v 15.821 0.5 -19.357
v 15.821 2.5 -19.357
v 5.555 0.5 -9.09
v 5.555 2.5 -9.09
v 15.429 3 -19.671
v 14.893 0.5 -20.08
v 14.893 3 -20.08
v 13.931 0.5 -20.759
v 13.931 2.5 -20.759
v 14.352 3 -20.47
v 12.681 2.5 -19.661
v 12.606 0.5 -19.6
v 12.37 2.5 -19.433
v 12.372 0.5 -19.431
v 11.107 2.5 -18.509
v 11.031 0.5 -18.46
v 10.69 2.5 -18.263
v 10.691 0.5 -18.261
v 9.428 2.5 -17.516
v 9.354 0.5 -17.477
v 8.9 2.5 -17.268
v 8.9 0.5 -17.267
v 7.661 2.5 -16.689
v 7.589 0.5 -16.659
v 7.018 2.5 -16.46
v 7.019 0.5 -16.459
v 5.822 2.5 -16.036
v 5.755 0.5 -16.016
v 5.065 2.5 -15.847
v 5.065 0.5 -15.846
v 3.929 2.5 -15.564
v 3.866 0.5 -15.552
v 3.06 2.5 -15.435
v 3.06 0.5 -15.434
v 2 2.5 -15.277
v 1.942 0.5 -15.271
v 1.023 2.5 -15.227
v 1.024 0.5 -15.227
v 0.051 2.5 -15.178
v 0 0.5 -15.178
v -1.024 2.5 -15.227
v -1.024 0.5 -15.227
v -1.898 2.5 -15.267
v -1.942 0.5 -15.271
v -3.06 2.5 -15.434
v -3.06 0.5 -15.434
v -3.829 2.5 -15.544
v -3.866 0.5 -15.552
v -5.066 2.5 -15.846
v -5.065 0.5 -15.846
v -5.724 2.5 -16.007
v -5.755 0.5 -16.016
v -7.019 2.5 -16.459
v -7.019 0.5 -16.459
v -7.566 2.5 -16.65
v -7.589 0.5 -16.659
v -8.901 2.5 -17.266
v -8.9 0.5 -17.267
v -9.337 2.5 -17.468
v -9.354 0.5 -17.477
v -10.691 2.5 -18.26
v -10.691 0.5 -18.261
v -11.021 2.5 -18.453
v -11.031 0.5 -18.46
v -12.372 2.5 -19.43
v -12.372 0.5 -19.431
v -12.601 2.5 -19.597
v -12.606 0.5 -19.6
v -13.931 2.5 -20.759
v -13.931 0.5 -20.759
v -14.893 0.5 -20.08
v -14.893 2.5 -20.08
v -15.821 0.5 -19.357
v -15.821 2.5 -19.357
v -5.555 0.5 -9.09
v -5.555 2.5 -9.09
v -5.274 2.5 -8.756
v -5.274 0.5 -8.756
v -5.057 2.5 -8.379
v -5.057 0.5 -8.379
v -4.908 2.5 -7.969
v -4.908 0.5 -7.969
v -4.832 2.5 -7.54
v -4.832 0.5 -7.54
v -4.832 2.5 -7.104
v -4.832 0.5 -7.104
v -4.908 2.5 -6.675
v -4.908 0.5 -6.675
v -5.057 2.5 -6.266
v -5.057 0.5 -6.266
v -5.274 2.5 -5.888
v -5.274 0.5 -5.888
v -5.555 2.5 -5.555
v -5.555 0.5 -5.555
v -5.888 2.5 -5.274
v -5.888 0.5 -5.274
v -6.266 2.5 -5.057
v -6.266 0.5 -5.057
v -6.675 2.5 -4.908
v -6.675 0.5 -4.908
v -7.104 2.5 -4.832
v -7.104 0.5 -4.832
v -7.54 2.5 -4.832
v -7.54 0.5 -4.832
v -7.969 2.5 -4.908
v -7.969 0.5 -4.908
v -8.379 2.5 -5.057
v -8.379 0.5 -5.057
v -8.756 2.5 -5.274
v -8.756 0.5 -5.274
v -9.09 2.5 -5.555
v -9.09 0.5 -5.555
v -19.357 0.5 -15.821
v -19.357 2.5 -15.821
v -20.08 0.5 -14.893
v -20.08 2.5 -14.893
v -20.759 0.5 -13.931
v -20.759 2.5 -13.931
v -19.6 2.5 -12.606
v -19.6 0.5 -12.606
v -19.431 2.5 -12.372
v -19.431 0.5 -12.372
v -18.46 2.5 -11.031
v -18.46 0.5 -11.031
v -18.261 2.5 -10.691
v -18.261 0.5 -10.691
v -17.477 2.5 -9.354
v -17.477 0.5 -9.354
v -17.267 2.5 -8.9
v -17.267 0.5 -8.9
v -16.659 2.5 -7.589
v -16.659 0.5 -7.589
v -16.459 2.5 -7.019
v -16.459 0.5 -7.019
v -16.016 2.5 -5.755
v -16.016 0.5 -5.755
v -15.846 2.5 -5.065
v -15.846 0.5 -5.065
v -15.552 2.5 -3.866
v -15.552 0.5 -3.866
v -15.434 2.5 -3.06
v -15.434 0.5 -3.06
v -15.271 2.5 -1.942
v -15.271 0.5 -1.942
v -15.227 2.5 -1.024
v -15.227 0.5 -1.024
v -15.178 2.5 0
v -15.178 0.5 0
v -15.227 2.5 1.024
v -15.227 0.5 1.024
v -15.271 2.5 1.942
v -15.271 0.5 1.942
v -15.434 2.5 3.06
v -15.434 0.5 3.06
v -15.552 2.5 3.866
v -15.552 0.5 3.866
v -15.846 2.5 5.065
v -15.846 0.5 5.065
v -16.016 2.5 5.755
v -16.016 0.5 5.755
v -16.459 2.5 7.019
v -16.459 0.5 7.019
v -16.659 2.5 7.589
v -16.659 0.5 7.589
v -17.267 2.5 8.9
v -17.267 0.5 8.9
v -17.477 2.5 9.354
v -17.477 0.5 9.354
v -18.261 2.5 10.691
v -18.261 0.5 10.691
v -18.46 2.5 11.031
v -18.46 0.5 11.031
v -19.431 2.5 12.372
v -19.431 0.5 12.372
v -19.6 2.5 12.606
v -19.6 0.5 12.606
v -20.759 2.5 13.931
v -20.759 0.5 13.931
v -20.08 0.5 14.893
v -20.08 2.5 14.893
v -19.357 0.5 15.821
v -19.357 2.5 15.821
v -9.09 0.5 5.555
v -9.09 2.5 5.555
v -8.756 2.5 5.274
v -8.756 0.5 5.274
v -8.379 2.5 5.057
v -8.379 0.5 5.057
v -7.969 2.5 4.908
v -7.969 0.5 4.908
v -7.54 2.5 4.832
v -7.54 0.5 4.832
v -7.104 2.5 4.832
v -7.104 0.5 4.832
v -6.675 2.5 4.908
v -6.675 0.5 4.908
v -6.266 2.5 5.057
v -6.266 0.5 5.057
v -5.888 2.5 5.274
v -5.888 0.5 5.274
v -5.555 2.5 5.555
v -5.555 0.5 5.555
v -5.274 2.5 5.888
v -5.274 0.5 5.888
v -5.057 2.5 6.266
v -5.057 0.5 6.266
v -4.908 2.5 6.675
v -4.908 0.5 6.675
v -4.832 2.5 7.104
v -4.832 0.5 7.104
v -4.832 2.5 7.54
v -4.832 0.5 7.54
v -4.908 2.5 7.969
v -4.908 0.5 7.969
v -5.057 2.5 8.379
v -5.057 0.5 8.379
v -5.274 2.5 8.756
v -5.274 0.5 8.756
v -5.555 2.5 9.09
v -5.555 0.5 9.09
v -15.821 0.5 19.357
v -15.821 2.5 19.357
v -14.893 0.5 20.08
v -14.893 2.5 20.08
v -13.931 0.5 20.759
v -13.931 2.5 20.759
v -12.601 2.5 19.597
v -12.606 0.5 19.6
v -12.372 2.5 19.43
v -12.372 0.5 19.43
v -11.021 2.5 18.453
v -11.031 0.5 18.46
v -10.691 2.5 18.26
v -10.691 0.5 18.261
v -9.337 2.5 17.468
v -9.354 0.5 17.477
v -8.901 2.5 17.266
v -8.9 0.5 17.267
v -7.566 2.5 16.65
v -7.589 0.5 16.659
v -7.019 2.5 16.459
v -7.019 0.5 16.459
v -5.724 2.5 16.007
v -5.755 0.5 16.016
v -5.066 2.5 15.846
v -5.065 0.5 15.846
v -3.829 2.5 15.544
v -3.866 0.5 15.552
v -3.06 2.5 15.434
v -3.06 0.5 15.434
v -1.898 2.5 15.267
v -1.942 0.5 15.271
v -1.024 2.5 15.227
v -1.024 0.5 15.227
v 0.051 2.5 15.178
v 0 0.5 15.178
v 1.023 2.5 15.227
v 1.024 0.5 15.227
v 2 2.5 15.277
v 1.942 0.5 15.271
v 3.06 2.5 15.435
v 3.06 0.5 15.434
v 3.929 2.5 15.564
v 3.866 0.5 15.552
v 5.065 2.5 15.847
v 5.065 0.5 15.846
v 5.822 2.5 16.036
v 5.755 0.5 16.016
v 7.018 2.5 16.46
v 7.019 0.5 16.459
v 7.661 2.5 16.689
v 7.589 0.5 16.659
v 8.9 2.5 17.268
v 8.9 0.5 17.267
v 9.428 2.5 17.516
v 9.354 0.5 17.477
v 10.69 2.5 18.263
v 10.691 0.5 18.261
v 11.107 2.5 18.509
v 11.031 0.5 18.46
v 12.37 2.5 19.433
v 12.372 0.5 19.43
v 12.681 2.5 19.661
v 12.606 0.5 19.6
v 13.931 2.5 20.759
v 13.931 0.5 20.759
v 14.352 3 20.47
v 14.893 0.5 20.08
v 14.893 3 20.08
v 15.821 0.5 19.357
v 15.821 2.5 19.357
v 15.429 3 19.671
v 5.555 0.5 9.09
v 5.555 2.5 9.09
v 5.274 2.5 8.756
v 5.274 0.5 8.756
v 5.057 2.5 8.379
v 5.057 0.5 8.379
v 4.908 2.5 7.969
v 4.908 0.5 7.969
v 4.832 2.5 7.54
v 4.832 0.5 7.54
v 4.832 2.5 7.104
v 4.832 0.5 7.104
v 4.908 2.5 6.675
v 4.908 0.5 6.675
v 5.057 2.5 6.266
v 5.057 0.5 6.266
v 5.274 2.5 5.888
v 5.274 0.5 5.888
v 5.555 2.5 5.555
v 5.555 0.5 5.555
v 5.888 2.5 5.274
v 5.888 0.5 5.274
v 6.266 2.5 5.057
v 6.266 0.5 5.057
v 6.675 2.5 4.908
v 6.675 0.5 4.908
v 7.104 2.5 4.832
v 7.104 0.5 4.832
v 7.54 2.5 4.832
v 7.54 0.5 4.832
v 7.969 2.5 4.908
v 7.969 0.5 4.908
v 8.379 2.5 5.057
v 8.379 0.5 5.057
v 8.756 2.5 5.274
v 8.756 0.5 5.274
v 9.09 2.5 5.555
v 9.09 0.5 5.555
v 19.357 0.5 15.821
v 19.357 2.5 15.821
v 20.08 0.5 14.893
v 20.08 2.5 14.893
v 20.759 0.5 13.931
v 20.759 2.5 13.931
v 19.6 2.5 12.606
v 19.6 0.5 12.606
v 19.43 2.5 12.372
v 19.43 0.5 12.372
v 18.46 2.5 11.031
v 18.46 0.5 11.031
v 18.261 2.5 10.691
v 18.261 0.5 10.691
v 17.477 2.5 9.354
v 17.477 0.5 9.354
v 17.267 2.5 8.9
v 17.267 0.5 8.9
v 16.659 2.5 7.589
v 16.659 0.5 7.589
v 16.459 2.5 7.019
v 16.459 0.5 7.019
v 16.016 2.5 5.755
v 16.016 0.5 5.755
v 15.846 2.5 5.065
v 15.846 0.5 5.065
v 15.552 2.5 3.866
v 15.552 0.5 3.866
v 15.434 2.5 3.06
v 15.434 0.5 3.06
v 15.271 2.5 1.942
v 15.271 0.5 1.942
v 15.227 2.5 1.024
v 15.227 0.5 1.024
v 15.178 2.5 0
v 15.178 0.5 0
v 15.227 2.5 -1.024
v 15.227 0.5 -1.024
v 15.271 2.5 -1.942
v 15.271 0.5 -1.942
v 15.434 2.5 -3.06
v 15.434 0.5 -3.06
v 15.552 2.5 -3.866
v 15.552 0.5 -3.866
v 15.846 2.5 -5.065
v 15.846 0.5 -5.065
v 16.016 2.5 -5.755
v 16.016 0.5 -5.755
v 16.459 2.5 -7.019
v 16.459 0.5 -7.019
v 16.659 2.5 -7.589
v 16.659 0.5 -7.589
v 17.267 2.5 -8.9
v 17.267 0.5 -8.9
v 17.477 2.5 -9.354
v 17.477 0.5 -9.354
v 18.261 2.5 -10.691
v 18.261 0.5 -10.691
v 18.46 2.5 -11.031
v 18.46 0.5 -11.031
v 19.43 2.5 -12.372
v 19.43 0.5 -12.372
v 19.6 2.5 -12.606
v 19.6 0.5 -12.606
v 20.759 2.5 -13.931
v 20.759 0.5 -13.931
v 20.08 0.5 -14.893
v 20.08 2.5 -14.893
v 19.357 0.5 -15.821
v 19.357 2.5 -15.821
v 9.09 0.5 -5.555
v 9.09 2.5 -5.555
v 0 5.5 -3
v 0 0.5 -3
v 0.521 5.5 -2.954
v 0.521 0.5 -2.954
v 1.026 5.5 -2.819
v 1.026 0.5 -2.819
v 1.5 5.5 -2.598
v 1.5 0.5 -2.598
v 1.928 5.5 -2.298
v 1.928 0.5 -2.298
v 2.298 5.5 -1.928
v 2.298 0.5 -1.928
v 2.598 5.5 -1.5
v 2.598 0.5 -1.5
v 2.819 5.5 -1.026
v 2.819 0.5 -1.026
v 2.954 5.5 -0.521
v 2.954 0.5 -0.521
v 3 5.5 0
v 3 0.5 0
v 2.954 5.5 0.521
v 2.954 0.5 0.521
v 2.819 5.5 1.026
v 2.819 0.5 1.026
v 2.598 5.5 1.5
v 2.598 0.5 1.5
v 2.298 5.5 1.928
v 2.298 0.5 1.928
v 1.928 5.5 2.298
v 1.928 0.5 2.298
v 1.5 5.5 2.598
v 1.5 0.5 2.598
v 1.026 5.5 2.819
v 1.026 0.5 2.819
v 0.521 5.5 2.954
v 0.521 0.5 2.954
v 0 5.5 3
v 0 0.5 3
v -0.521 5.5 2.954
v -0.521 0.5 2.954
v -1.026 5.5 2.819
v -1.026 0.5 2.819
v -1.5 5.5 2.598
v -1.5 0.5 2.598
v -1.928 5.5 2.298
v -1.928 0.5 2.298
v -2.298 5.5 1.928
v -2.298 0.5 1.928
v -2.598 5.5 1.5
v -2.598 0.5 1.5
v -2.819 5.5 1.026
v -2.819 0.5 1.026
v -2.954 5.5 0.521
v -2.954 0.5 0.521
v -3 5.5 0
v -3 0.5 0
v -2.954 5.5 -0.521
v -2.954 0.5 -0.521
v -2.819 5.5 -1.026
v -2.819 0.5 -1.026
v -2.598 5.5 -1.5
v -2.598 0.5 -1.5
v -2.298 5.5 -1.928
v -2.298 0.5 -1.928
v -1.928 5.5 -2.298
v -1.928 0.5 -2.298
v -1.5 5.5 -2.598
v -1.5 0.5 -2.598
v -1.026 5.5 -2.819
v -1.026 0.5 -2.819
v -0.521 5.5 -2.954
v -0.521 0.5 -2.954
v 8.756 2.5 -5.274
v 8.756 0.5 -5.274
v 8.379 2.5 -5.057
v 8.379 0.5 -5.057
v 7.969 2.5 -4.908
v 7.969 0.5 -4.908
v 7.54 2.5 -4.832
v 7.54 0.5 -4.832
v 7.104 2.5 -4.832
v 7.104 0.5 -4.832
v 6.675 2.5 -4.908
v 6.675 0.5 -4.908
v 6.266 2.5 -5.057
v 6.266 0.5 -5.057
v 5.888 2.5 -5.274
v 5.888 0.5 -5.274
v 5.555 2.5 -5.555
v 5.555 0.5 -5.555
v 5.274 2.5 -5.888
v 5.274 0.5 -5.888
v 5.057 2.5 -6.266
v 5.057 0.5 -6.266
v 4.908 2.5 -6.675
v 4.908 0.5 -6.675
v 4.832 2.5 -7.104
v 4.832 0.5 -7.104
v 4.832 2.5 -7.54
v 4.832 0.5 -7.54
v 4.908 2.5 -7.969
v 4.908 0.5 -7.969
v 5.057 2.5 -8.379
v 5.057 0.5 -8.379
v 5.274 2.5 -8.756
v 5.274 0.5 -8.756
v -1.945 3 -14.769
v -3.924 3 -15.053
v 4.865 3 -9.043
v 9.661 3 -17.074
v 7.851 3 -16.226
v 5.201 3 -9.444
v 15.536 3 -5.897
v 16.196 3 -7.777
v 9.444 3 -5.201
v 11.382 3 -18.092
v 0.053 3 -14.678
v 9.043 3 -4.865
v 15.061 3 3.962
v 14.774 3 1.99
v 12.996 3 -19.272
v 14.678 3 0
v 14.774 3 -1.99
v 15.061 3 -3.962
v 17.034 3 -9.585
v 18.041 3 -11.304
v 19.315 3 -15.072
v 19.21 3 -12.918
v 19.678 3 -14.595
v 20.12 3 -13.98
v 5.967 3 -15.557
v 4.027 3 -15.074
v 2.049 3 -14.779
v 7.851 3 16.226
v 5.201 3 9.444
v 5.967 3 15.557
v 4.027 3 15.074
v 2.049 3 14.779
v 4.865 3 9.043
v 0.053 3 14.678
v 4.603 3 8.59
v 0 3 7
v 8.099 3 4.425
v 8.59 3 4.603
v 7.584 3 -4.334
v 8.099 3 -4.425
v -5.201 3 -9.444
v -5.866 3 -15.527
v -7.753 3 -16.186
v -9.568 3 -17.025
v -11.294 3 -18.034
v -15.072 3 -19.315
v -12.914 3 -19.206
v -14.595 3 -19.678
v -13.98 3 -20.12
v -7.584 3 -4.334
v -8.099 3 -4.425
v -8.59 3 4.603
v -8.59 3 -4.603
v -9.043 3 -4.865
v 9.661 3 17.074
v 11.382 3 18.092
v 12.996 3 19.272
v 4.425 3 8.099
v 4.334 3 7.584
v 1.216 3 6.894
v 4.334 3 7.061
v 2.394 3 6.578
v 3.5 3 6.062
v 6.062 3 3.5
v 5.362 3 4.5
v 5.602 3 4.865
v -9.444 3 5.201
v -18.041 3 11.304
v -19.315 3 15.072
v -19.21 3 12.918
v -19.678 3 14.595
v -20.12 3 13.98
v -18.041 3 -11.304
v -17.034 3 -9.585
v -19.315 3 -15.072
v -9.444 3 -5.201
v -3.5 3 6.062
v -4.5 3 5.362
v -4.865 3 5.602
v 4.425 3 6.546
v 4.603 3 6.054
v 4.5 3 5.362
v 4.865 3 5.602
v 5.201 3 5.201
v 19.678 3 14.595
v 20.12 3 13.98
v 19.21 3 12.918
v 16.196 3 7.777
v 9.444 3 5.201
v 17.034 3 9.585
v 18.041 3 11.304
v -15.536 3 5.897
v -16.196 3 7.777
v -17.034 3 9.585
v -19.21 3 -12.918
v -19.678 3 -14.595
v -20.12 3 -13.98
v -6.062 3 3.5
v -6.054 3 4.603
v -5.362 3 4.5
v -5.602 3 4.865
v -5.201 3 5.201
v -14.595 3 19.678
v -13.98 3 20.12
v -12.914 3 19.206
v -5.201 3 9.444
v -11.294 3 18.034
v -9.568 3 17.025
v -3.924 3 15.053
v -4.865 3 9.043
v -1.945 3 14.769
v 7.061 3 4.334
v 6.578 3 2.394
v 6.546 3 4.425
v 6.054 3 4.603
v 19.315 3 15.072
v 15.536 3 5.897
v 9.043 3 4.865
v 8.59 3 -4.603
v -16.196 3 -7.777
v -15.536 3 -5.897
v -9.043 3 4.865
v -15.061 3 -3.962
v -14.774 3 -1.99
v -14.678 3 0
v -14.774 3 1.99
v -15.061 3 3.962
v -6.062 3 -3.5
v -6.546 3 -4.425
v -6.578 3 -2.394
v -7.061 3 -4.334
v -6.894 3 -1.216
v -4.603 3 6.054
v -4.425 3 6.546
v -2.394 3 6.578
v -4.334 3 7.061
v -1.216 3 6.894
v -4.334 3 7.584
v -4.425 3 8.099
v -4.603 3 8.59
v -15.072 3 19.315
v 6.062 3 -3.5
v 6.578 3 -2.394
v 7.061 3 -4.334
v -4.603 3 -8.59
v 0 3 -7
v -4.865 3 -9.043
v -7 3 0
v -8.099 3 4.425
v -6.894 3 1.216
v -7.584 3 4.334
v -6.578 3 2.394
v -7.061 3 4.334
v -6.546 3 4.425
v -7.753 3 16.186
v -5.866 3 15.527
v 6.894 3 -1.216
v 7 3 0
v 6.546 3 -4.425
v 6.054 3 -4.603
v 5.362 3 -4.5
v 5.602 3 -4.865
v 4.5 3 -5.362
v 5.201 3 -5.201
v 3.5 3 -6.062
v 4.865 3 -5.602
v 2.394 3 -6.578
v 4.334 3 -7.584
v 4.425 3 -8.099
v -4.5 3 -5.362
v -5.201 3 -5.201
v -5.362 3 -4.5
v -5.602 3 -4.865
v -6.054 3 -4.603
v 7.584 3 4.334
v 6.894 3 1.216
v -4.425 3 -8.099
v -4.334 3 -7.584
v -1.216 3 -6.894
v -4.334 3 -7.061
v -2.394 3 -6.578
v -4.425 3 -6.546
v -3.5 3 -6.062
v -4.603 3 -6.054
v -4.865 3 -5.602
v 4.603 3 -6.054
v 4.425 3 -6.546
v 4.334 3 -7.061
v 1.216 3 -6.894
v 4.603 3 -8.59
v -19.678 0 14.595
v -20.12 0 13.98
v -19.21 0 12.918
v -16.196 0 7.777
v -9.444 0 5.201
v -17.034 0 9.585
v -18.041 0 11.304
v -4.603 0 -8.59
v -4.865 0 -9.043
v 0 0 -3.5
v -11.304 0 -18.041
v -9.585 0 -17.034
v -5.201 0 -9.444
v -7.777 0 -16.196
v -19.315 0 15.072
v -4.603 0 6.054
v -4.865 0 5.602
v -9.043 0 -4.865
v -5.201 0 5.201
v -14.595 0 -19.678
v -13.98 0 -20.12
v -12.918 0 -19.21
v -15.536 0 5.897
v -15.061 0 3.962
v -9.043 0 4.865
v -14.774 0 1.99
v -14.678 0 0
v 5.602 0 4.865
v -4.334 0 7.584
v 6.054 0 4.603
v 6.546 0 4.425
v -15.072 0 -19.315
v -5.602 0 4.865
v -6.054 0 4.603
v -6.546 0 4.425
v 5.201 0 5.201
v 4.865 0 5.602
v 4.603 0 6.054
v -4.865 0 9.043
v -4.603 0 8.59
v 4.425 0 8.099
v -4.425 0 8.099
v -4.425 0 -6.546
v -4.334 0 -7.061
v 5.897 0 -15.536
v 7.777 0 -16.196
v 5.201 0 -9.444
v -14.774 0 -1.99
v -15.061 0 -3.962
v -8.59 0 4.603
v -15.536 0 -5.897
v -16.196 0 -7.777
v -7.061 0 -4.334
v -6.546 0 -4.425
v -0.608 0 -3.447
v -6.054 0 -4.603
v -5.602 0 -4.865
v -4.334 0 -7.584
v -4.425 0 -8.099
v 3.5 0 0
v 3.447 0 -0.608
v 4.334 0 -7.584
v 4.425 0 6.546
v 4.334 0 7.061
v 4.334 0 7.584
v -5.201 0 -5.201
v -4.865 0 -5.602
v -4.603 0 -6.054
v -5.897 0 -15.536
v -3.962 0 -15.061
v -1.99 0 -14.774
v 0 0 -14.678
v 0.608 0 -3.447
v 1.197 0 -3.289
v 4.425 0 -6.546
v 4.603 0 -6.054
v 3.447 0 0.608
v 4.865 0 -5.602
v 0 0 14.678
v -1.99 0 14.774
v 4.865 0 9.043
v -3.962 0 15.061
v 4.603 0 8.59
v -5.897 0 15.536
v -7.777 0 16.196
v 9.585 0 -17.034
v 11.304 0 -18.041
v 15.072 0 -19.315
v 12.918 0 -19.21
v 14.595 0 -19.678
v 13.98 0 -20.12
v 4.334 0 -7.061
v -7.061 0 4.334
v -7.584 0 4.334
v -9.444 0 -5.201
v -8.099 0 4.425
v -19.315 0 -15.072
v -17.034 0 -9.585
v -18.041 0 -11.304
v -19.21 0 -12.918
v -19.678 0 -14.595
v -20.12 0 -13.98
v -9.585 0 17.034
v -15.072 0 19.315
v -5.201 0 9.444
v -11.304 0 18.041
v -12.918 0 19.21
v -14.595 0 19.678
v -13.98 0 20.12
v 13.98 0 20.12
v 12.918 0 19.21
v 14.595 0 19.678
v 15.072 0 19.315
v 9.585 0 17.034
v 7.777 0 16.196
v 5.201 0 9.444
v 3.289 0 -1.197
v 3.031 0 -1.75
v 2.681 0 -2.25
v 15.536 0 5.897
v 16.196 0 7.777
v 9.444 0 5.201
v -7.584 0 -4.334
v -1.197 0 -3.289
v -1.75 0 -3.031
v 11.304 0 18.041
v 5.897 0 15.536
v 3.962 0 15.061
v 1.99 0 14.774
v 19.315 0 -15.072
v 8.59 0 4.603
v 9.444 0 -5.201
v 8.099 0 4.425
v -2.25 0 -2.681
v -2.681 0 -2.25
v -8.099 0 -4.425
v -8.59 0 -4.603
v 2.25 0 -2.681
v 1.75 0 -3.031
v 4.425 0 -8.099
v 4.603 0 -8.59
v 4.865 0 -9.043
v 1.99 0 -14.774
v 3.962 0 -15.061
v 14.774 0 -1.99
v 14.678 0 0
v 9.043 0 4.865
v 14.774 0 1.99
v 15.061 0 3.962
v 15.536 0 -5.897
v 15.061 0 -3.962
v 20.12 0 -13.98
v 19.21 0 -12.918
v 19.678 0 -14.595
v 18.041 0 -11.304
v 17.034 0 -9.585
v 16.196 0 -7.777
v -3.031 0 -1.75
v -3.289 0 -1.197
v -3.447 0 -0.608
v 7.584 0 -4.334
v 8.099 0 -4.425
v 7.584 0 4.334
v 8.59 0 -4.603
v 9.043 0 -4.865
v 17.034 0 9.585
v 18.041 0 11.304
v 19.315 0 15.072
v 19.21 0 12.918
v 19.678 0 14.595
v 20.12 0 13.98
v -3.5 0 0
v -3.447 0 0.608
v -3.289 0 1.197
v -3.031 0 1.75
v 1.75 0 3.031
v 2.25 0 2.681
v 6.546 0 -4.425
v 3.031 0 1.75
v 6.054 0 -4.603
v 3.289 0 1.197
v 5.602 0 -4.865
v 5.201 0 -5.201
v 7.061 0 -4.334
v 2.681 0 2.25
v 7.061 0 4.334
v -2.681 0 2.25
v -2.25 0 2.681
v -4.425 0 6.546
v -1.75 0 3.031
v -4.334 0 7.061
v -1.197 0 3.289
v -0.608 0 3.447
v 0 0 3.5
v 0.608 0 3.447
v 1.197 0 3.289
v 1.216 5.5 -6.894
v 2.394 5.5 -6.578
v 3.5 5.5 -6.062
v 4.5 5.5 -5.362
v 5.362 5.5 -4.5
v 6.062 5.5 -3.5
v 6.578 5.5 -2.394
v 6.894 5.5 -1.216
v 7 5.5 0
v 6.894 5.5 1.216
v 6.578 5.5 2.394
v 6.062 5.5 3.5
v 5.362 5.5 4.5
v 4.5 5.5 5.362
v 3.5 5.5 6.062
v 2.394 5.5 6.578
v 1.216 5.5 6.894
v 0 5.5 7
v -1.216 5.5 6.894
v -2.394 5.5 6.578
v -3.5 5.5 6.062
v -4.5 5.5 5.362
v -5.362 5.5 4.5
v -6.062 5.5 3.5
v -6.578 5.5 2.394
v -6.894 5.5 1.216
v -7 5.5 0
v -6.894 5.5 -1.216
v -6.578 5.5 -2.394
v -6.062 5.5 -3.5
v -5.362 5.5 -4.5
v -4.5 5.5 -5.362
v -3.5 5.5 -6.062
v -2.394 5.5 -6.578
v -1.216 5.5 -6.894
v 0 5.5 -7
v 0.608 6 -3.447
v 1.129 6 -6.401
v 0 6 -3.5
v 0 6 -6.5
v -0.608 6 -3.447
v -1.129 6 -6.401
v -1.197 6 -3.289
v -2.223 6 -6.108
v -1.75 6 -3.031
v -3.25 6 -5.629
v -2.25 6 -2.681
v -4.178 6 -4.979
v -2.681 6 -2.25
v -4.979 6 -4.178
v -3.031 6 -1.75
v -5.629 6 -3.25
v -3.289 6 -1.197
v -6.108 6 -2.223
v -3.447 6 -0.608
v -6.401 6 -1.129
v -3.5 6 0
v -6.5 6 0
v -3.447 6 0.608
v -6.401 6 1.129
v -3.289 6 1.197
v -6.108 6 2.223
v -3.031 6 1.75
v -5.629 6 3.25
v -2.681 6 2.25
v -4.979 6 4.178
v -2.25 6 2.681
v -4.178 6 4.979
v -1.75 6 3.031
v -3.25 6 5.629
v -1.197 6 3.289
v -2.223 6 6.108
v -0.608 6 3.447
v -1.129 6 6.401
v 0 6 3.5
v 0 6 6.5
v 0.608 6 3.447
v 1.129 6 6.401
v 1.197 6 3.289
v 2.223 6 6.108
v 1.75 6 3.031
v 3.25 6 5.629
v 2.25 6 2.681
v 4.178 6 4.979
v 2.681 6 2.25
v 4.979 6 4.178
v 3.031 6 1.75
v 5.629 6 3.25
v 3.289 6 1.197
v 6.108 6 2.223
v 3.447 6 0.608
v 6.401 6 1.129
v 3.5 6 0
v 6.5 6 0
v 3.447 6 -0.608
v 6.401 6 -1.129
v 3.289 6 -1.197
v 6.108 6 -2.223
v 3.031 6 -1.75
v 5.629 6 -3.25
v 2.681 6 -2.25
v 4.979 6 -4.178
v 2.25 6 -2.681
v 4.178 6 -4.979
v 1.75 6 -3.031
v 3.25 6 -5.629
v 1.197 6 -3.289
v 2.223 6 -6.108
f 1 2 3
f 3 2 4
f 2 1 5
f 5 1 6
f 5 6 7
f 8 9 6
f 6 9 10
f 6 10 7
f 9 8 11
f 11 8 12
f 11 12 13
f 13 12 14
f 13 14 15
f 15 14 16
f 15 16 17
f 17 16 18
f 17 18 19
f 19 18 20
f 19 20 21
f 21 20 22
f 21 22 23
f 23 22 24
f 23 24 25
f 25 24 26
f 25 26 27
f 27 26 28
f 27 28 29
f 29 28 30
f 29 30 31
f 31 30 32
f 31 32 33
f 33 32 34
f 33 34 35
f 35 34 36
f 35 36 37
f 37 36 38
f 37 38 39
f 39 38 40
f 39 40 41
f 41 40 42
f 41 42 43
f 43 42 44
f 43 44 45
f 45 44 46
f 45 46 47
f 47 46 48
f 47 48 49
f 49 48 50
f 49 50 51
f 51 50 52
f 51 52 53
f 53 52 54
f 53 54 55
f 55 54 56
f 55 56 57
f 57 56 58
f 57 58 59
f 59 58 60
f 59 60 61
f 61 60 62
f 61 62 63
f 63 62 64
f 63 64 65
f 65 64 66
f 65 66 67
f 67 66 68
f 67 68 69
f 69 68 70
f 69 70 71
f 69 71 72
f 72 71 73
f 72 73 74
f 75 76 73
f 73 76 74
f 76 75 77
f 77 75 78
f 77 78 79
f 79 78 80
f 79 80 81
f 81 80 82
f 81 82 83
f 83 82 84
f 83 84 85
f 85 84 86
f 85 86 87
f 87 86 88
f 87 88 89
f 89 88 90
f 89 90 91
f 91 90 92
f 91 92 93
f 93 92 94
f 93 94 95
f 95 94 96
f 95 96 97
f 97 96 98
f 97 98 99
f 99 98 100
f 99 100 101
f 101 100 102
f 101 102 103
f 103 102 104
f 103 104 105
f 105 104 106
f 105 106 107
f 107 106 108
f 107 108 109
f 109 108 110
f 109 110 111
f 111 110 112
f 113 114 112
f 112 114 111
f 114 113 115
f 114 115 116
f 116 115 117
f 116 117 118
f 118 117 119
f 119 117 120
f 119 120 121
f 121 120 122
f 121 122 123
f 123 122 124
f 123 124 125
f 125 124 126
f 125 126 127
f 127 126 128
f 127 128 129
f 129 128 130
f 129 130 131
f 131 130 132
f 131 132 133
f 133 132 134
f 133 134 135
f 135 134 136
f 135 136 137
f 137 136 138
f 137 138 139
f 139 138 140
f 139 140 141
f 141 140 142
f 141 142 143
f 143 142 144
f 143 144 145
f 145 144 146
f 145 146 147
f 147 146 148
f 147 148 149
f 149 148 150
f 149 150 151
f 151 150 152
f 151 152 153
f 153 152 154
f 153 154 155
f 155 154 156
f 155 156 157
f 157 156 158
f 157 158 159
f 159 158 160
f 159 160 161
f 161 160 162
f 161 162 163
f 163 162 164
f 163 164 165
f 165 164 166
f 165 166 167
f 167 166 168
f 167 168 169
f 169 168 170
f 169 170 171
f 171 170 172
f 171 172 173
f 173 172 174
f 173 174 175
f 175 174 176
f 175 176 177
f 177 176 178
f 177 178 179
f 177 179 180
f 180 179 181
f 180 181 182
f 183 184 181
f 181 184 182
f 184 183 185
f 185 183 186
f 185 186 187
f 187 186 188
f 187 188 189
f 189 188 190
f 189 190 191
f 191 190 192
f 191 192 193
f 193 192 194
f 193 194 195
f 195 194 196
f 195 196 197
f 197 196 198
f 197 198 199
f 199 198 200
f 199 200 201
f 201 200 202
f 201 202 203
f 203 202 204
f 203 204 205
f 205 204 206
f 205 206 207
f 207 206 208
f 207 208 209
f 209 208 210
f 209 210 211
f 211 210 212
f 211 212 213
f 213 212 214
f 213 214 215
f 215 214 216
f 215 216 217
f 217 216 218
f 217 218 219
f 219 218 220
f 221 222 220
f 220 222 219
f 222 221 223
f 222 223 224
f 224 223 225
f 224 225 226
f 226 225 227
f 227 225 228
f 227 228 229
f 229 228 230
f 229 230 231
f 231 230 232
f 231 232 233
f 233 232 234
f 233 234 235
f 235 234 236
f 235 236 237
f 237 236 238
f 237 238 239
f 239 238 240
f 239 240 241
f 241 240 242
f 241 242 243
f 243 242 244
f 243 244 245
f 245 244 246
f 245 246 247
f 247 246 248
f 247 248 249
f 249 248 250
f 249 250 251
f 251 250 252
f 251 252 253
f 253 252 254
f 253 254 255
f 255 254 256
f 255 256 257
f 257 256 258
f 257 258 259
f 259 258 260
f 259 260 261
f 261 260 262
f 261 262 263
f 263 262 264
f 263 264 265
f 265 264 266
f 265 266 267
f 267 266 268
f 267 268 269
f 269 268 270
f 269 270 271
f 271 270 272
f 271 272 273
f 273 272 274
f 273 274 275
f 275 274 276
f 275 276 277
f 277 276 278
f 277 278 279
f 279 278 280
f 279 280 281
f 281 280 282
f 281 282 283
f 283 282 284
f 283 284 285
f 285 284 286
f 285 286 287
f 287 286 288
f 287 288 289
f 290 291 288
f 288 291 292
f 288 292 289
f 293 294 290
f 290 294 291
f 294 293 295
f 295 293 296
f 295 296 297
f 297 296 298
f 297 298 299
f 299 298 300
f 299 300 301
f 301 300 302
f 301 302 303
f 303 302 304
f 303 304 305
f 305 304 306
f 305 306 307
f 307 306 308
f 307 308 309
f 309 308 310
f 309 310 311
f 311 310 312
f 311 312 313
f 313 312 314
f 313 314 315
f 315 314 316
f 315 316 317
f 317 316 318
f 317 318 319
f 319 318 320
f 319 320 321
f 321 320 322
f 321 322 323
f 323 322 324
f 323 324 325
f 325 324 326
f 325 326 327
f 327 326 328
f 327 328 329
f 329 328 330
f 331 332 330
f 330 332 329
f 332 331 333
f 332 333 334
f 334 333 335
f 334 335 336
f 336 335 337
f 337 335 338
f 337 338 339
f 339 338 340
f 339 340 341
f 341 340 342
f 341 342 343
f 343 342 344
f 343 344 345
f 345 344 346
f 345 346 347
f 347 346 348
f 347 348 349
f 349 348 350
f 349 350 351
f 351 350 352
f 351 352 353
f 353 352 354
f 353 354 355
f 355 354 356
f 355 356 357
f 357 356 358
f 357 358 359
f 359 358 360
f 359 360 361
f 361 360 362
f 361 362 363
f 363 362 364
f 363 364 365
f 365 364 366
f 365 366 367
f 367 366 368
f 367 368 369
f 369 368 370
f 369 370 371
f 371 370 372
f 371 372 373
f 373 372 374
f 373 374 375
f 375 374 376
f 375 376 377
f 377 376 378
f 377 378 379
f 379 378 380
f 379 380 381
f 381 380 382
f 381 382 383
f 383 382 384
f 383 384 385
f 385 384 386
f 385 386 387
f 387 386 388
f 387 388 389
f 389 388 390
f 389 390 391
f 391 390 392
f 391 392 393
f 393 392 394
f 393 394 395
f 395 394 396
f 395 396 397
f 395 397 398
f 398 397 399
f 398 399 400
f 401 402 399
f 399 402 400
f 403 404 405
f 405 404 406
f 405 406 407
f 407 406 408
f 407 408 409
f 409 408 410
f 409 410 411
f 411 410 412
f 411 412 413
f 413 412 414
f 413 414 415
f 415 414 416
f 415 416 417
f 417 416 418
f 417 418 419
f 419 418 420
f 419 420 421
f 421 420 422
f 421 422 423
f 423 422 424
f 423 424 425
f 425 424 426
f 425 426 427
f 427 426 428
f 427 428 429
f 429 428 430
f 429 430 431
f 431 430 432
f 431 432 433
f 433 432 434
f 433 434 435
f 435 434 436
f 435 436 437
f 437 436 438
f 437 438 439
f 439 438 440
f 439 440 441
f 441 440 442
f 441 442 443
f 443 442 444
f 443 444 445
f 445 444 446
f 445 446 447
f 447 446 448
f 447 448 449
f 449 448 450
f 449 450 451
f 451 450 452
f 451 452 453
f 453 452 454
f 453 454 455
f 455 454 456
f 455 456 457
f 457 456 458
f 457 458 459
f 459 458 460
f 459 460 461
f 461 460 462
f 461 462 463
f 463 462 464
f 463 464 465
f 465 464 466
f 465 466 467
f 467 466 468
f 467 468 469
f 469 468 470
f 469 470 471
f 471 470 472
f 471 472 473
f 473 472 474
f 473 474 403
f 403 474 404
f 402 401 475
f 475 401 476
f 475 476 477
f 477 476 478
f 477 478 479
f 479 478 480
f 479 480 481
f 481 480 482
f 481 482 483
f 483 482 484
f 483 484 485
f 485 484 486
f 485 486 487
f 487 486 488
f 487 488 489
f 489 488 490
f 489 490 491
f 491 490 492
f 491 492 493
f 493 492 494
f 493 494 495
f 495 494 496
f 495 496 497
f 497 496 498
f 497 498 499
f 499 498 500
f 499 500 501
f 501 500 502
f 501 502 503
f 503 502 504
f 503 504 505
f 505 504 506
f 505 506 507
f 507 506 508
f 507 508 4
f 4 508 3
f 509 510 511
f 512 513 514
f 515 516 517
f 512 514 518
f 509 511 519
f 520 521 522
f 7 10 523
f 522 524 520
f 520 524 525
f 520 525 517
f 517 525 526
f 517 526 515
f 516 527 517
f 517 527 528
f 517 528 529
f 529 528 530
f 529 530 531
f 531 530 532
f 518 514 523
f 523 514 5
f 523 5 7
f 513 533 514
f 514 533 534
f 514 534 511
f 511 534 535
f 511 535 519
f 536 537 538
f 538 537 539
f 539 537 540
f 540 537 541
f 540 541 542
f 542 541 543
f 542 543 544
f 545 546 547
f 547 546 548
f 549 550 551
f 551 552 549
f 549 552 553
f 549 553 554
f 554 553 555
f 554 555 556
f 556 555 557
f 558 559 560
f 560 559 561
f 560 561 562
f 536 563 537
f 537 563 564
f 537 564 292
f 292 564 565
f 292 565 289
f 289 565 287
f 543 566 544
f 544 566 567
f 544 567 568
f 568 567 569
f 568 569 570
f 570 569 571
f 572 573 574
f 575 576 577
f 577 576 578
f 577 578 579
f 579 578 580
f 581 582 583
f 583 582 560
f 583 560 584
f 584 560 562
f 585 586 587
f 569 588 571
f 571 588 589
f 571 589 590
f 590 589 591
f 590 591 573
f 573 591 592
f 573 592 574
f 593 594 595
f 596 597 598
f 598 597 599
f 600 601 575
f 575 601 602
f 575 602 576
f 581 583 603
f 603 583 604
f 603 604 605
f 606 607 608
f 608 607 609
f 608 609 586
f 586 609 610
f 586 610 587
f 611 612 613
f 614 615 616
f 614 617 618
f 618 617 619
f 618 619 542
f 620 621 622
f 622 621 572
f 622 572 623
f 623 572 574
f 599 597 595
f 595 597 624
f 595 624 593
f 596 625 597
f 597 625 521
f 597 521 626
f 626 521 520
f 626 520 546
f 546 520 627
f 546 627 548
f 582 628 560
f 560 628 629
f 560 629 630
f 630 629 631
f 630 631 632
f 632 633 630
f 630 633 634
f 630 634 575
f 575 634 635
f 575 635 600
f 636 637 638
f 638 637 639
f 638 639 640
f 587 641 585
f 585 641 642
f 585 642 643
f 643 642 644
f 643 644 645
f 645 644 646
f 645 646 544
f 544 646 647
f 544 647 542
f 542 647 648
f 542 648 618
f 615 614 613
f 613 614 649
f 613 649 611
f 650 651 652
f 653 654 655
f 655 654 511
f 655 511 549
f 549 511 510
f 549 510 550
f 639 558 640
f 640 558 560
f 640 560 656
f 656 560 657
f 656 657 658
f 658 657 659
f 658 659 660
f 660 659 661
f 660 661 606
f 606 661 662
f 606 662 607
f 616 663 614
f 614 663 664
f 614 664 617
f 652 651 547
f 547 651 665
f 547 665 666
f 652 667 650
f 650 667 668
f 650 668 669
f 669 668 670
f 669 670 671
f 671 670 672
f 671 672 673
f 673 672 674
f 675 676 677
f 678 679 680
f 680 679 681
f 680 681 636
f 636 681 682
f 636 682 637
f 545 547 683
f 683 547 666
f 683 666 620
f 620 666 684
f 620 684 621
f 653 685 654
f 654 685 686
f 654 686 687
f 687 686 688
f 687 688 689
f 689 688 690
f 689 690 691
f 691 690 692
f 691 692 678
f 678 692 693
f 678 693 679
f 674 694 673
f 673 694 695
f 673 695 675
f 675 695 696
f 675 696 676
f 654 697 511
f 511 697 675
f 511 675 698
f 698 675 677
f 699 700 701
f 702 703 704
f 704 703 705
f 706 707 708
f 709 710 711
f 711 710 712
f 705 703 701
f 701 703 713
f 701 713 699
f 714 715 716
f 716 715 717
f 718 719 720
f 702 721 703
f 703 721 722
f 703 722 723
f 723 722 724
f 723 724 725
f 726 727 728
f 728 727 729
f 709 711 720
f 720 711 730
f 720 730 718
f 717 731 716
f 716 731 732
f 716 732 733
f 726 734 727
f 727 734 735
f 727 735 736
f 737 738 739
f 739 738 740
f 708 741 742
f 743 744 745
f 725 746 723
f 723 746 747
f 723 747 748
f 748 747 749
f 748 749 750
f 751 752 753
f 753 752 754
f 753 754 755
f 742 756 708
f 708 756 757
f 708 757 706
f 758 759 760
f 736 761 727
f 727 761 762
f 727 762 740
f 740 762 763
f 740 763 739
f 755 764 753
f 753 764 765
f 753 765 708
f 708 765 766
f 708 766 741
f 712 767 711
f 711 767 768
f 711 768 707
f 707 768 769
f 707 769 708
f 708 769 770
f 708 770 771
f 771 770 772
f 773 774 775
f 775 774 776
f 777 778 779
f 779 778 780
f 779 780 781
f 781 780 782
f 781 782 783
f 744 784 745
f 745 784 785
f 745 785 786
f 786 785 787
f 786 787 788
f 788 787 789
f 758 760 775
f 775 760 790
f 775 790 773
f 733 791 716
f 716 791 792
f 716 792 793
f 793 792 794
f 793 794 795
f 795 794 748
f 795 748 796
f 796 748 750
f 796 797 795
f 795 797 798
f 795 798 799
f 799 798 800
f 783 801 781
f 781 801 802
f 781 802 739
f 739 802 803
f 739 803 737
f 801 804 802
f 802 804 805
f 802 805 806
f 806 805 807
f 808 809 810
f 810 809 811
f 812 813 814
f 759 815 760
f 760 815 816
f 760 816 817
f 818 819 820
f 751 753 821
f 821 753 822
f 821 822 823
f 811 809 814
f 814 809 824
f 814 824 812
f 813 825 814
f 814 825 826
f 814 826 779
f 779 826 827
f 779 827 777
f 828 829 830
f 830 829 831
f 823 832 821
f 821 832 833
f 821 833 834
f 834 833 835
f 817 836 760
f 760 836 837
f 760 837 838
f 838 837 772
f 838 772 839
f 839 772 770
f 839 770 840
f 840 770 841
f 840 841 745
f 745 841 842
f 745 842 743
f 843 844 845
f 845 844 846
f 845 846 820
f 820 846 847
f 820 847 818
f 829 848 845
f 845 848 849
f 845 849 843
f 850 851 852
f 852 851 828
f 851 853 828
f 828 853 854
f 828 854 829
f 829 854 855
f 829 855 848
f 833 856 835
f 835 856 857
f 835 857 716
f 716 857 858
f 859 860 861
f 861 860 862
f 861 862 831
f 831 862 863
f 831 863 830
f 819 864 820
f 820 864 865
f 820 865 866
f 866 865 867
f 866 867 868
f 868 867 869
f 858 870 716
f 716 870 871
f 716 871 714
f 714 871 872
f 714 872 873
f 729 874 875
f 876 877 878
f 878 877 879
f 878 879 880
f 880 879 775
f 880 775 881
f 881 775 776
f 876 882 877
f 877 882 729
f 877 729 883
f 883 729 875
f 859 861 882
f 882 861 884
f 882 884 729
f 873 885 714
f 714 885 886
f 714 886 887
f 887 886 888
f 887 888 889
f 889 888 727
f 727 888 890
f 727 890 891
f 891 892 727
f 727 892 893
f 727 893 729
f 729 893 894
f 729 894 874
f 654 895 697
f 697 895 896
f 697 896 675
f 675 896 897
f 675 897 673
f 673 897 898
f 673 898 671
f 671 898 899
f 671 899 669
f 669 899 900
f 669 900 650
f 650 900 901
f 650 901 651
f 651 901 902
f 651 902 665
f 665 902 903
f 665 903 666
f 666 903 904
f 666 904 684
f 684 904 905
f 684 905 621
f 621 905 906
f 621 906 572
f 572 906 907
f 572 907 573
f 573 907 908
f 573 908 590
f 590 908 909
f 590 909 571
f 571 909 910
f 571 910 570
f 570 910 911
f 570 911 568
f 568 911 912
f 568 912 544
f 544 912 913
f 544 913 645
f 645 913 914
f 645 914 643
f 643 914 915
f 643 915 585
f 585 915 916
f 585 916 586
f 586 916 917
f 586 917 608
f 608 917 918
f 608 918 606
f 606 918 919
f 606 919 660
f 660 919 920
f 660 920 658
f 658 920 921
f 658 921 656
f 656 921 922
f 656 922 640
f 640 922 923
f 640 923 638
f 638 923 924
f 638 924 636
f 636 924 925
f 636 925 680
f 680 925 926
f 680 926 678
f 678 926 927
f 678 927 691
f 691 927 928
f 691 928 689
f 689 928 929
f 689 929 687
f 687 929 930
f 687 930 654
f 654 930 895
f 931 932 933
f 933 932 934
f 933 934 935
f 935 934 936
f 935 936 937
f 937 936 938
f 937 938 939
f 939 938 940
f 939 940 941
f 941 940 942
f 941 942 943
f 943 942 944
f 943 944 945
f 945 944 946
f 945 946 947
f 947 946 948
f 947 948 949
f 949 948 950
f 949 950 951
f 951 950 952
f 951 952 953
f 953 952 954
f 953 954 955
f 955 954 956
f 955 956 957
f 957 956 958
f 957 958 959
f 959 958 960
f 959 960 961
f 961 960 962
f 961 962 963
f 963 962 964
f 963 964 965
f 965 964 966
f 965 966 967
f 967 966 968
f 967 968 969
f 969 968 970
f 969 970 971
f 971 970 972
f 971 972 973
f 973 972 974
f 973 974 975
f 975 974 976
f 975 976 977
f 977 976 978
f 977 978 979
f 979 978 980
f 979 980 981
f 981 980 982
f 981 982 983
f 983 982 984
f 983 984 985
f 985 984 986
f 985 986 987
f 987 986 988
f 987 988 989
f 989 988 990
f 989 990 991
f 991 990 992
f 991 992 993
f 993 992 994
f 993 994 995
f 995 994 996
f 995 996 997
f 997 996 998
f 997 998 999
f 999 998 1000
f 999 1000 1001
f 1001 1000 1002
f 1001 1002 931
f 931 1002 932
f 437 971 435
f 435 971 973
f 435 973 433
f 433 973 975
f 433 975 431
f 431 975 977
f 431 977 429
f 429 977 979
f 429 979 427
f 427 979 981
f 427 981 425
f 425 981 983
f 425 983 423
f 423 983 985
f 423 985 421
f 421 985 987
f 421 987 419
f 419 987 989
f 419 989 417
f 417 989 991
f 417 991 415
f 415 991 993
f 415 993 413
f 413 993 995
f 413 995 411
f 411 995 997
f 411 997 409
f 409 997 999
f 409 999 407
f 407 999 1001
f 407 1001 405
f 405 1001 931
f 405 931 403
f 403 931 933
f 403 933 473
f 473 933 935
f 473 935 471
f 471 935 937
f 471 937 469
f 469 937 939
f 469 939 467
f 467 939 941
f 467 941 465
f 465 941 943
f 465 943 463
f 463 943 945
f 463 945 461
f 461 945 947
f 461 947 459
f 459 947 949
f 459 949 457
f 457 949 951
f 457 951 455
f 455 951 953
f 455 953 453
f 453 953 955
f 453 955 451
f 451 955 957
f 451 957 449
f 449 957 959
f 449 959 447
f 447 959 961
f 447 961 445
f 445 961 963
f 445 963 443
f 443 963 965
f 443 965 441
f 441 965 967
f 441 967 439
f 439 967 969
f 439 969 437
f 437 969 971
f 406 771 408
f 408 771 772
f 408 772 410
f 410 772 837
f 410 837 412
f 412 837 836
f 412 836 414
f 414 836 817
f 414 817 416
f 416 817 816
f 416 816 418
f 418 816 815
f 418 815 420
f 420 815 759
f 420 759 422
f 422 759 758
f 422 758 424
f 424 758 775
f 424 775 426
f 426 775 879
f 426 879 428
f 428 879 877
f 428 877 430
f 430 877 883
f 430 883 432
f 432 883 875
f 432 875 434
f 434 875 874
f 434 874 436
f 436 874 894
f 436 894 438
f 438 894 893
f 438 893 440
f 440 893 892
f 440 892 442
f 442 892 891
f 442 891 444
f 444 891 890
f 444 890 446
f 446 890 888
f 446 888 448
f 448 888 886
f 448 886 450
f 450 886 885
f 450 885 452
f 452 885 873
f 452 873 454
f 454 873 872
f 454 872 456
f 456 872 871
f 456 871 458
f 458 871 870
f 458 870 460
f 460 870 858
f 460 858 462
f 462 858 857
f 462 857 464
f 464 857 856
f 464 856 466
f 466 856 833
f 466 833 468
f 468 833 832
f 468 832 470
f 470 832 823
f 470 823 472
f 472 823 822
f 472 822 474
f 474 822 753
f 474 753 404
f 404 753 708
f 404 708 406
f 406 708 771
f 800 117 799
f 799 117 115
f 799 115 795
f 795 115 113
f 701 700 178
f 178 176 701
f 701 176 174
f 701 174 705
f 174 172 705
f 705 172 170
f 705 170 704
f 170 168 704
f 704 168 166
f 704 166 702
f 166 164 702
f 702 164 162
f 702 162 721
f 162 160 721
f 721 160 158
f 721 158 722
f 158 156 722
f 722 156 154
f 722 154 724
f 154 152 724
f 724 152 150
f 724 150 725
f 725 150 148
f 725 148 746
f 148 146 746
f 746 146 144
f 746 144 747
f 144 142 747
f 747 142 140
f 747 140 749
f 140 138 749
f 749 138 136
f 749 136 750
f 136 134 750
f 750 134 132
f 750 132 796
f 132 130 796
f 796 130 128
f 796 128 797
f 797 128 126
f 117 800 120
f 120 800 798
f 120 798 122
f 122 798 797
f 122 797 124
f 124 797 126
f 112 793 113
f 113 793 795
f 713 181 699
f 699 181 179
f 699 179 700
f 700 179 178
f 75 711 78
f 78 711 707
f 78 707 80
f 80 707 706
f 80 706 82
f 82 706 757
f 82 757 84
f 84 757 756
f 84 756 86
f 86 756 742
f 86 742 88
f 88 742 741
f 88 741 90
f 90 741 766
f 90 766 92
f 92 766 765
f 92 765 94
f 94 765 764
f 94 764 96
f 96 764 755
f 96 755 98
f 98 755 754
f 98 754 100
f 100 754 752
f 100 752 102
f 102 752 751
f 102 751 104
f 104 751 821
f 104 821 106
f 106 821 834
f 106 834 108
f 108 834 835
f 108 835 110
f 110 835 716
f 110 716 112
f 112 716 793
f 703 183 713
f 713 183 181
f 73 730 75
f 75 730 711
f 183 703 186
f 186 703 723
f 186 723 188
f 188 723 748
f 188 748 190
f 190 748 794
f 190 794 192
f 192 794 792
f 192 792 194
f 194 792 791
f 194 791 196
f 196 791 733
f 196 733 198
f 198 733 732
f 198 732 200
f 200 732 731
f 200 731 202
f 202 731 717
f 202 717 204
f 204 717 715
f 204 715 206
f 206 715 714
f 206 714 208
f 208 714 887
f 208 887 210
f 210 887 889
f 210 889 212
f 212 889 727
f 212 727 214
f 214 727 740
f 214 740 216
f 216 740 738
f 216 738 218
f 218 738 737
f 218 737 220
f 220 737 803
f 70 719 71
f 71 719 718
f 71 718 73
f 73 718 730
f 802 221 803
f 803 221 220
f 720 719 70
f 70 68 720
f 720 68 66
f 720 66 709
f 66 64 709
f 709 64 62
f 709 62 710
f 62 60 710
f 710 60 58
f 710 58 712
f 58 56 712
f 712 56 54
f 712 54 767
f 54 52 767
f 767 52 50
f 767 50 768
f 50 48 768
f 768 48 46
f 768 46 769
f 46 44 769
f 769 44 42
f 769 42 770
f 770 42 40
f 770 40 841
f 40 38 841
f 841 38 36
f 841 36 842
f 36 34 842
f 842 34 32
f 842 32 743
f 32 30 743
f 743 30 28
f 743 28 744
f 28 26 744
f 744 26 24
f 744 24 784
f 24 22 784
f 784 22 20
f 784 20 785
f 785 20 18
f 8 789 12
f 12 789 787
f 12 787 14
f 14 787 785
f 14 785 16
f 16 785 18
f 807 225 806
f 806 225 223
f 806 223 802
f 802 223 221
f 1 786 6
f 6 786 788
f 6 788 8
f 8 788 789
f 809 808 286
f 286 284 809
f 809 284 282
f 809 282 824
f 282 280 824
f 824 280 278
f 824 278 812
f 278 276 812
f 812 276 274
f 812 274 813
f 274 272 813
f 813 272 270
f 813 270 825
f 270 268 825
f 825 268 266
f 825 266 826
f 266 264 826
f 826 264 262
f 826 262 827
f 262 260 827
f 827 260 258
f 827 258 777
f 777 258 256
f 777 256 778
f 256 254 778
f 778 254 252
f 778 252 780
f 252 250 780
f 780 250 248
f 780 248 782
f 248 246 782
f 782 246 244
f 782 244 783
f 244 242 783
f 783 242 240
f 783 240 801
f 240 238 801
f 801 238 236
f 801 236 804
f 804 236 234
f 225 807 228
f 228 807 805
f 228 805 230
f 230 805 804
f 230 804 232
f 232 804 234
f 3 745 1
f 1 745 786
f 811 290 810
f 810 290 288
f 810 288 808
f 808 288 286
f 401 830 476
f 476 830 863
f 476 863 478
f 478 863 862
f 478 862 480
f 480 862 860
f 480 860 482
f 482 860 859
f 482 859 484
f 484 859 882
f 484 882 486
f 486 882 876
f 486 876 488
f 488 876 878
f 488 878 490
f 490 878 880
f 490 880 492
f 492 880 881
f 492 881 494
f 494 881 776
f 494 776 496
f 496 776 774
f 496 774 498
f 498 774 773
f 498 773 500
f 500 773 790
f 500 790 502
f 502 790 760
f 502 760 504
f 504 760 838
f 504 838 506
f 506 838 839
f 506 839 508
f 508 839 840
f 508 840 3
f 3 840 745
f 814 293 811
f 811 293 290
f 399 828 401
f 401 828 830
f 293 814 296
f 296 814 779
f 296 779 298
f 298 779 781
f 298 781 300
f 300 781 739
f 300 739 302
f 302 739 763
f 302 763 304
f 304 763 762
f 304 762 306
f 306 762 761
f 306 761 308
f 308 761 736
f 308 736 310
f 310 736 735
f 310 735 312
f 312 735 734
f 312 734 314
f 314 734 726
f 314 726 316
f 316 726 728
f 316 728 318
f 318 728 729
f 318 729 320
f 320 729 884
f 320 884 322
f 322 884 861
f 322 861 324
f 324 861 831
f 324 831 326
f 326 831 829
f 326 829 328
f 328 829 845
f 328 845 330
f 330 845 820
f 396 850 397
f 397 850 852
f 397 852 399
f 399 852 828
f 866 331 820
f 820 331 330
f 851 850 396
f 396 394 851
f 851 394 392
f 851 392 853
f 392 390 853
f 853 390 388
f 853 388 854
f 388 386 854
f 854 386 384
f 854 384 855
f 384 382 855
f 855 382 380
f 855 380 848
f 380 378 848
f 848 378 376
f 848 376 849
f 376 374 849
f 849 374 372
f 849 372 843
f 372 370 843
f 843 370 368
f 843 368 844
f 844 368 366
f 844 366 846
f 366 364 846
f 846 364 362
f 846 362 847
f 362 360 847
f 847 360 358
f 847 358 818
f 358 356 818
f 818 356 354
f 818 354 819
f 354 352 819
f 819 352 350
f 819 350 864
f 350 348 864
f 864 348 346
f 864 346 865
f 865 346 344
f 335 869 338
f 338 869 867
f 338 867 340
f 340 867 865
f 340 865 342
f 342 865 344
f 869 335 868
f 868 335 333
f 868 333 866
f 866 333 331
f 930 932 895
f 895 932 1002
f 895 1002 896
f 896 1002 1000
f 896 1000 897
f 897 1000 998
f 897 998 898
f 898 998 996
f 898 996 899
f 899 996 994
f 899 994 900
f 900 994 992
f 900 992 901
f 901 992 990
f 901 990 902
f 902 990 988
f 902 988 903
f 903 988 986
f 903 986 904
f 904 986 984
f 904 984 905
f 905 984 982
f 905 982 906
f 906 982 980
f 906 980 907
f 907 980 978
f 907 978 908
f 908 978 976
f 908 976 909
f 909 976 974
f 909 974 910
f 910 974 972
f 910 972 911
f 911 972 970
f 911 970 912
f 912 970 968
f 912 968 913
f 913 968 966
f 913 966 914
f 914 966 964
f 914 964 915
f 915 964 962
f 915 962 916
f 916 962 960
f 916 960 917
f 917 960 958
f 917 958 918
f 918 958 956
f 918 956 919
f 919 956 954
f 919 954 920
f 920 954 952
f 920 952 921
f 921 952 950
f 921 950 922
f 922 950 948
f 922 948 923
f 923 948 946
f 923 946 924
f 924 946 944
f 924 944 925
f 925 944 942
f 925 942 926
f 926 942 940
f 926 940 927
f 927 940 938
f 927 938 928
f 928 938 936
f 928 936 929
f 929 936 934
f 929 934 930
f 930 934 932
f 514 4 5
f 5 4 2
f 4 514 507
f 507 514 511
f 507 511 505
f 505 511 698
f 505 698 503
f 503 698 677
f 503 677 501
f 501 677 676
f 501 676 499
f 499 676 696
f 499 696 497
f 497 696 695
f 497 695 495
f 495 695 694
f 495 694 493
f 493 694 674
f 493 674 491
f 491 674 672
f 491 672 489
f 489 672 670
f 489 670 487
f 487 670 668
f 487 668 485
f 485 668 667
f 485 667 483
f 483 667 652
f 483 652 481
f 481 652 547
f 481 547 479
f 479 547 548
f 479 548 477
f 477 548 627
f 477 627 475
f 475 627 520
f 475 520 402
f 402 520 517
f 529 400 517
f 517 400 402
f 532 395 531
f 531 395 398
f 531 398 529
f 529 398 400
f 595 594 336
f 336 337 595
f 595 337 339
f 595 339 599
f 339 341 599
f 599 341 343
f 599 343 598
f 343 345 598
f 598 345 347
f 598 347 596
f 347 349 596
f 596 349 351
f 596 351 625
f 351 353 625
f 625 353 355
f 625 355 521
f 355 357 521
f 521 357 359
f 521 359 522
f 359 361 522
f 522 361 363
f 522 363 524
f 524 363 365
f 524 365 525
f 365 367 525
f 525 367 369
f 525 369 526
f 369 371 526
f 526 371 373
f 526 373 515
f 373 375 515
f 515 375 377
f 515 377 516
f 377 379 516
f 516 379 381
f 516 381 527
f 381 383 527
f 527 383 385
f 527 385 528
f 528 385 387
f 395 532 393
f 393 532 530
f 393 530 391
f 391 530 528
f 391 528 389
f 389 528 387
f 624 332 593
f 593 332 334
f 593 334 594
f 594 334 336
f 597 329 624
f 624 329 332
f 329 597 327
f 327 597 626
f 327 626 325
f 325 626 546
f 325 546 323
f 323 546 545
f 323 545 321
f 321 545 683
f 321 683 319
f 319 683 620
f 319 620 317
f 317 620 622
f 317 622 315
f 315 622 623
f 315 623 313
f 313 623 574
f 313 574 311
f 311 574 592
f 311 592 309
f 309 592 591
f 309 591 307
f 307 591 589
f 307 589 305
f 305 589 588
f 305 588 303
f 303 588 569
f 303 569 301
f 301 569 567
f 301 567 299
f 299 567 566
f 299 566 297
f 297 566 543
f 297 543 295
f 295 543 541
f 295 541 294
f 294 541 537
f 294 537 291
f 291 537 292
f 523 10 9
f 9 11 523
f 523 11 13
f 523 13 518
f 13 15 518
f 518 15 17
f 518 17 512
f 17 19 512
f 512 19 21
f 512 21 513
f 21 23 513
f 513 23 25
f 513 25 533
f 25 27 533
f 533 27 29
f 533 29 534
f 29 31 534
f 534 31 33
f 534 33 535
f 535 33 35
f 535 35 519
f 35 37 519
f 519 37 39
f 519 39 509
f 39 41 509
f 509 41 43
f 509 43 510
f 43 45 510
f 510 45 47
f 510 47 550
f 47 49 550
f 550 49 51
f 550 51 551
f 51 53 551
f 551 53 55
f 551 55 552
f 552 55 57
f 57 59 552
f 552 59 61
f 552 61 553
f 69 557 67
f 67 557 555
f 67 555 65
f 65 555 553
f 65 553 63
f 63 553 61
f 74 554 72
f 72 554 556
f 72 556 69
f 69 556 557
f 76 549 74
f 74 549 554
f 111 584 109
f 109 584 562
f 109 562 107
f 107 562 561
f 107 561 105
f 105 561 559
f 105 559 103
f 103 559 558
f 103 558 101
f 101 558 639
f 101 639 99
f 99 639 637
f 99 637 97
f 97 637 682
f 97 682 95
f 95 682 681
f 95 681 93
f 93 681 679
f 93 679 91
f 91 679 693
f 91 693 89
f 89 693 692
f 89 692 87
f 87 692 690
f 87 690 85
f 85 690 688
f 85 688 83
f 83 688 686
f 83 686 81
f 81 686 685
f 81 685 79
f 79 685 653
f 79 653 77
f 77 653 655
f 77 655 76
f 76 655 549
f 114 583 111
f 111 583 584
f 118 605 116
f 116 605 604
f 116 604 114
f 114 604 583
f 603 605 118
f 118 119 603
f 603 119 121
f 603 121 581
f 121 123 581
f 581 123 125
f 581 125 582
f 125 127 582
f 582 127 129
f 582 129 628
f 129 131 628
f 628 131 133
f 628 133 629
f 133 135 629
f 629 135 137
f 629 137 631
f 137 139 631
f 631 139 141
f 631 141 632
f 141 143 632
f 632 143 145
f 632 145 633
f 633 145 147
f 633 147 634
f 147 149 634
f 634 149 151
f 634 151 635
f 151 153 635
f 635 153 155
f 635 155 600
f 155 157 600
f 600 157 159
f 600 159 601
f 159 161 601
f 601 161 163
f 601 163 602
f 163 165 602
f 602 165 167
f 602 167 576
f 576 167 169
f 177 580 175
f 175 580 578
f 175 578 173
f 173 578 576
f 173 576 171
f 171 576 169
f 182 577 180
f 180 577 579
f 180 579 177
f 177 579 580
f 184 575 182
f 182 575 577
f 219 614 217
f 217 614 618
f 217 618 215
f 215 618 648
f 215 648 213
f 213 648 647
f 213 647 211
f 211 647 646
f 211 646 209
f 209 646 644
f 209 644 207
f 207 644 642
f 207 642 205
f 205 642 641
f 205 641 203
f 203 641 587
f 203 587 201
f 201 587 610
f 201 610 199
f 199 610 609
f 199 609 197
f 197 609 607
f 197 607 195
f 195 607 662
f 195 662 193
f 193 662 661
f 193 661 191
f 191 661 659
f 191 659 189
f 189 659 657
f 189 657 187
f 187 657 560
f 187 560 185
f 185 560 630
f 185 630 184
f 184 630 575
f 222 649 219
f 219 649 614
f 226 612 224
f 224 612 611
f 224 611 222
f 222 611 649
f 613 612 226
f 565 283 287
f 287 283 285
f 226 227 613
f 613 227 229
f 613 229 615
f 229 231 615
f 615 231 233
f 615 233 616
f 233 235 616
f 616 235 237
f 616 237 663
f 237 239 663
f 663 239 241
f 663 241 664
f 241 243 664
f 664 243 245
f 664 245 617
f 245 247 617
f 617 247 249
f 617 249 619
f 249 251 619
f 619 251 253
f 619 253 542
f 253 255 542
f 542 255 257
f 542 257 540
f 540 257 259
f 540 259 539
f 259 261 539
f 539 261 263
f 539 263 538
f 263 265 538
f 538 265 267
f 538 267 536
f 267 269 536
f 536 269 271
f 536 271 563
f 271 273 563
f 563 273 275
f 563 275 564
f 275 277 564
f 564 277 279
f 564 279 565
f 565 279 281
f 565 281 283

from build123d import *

# Parameters (mm, degrees)
SKETCH1_R           = 3
BOSS_EXTRUDE1_DEPTH = 3
SKETCH2_R           = 7
SKETCH2_R_2         = 3
BOSS_EXTRUDE2_DEPTH = 3
CHAMFER1_SIZE       = 0.5


with BuildPart() as part:
    # Sketch1 → Boss-Extrude1 (new body)
    with BuildSketch(Plane(origin=(0, 0, 0), x_dir=(1, 0, 0), z_dir=(0, 1, 0))):
        with BuildLine():
            ThreePointArc((9.090097423, 5.554563517), (5.554563517, 5.554563517), (5.554563517, 9.090097423))
            Line((5.554563517, 9.090097423), (15.821292146, 19.356826052))
            ThreePointArc((15.821292146, 19.356826052), (14.892716162, 20.080015073), (13.931131824, 20.758698564))
            ThreePointArc((13.931131824, 20.758698564), (0, 15.17766953), (-13.931131824, 20.758698564))
            ThreePointArc((-13.931131824, 20.758698564), (-14.892716162, 20.080015073), (-15.821292146, 19.356826052))
            Line((-15.821292146, 19.356826052), (-5.554563517, 9.090097423))
            ThreePointArc((-5.554563517, 9.090097423), (-5.554563517, 5.554563517), (-9.090097423, 5.554563517))
            Line((-9.090097423, 5.554563517), (-19.356826052, 15.821292146))
            ThreePointArc((-19.356826052, 15.821292146), (-20.080015073, 14.892716162), (-20.758698564, 13.931131824))
            ThreePointArc((-20.758698564, 13.931131824), (-15.17766953, 0), (-20.758698564, -13.931131824))
            ThreePointArc((-20.758698564, -13.931131824), (-20.080015073, -14.892716162), (-19.356826052, -15.821292146))
            Line((-19.356826052, -15.821292146), (-9.090097423, -5.554563517))
            ThreePointArc((-9.090097423, -5.554563517), (-5.554563517, -5.554563517), (-5.554563517, -9.090097423))
            Line((-5.554563517, -9.090097423), (-15.821292146, -19.356826052))
            ThreePointArc((-15.821292146, -19.356826052), (-14.892716162, -20.080015073), (-13.931131824, -20.758698564))
            ThreePointArc((-13.931131824, -20.758698564), (0, -15.17766953), (13.931131824, -20.758698564))
            ThreePointArc((13.931131824, -20.758698564), (14.892716162, -20.080015073), (15.821292146, -19.356826052))
            Line((15.821292146, -19.356826052), (5.554563517, -9.090097423))
            ThreePointArc((5.554563517, -9.090097423), (5.554563517, -5.554563517), (9.090097423, -5.554563517))
            Line((9.090097423, -5.554563517), (19.356826052, -15.821292146))
            ThreePointArc((19.356826052, -15.821292146), (20.080015073, -14.892716162), (20.758698564, -13.931131824))
            ThreePointArc((20.758698564, -13.931131824), (15.17766953, 0), (20.758698564, 13.931131824))
            ThreePointArc((20.758698564, 13.931131824), (20.080015073, 14.892716162), (19.356826052, 15.821292146))
            Line((19.356826052, 15.821292146), (9.090097423, 5.554563517))
        make_face()
        with Locations(Location((0, 0, 0), (0, 0, 270))):
            Circle(SKETCH1_R, mode=Mode.SUBTRACT)
    extrude(amount=BOSS_EXTRUDE1_DEPTH)

    # Sketch2 → Boss-Extrude2 (add)
    with BuildSketch(Plane(origin=(0, 3, 0), x_dir=(1, 0, 0), z_dir=(0, 1, 0))):
        with Locations(Location((0, 0, 0), (0, 0, 270))):
            Circle(SKETCH2_R)
        with Locations(Location((0, 0, 0), (0, 0, 270))):
            Circle(SKETCH2_R_2, mode=Mode.SUBTRACT)
    extrude(amount=BOSS_EXTRUDE2_DEPTH)

    # Chamfer1
    chamfer1_edges = [part.edges().sort_by_distance(p)[0] for p in [
        (0, 6, -7),
        (10.687927832, 3, 14.223461738),
        (5.554563517, 3, 5.554563517),
        (14.223461738, 3, 10.687927832),
        (20.080015073, 3, 14.892716162),
        (15.17766953, 3, 0),
        (20.080015073, 3, -14.892716162),
        (14.223461738, 3, -10.687927832),
        (5.554563517, 3, -5.554563517),
        (10.687927832, 3, -14.223461738),
        (0, 3, 15.17766953),
        (-14.892716162, 3, 20.080015073),
        (-10.687927832, 3, 14.223461738),
        (-5.554563517, 3, 5.554563517),
        (-14.223461738, 3, 10.687927832),
        (-20.080015073, 3, 14.892716162),
        (-15.17766953, 3, 0),
        (-20.080015073, 3, -14.892716162),
        (0, 3, -15.17766953),
        (-14.892716162, 3, -20.080015073),
        (-10.687927832, 3, -14.223461738),
        (-5.554563517, 3, -5.554563517),
        (-14.223461738, 3, -10.687927832),
        (0, 6, -3),
        (0, 0, -3),
        (20.080015073, 0, 14.892716162),
        (14.223461738, 0, 10.687927832),
        (5.554563517, 0, 5.554563517),
        (10.687927832, 0, 14.223461738),
        (14.892716162, 0, 20.080015073),
        (0, 0, 15.17766953),
        (-14.892716162, 0, 20.080015073),
        (-10.687927832, 0, 14.223461738),
        (-5.554563517, 0, 5.554563517),
        (-14.223461738, 0, 10.687927832),
        (-20.080015073, 0, 14.892716162),
        (-15.17766953, 0, 0),
        (-20.080015073, 0, -14.892716162),
        (-14.223461738, 0, -10.687927832),
        (-5.554563517, 0, -5.554563517),
        (-10.687927832, 0, -14.223461738),
        (-14.892716162, 0, -20.080015073),
        (0, 0, -15.17766953),
        (14.892716162, 0, -20.080015073),
        (10.687927832, 0, -14.223461738),
        (5.554563517, 0, -5.554563517),
        (14.223461738, 0, -10.687927832),
        (20.080015073, 0, -14.892716162),
        (15.17766953, 0, 0),
    ]]
    chamfer(chamfer1_edges, length=CHAMFER1_SIZE)


solid = part.part
